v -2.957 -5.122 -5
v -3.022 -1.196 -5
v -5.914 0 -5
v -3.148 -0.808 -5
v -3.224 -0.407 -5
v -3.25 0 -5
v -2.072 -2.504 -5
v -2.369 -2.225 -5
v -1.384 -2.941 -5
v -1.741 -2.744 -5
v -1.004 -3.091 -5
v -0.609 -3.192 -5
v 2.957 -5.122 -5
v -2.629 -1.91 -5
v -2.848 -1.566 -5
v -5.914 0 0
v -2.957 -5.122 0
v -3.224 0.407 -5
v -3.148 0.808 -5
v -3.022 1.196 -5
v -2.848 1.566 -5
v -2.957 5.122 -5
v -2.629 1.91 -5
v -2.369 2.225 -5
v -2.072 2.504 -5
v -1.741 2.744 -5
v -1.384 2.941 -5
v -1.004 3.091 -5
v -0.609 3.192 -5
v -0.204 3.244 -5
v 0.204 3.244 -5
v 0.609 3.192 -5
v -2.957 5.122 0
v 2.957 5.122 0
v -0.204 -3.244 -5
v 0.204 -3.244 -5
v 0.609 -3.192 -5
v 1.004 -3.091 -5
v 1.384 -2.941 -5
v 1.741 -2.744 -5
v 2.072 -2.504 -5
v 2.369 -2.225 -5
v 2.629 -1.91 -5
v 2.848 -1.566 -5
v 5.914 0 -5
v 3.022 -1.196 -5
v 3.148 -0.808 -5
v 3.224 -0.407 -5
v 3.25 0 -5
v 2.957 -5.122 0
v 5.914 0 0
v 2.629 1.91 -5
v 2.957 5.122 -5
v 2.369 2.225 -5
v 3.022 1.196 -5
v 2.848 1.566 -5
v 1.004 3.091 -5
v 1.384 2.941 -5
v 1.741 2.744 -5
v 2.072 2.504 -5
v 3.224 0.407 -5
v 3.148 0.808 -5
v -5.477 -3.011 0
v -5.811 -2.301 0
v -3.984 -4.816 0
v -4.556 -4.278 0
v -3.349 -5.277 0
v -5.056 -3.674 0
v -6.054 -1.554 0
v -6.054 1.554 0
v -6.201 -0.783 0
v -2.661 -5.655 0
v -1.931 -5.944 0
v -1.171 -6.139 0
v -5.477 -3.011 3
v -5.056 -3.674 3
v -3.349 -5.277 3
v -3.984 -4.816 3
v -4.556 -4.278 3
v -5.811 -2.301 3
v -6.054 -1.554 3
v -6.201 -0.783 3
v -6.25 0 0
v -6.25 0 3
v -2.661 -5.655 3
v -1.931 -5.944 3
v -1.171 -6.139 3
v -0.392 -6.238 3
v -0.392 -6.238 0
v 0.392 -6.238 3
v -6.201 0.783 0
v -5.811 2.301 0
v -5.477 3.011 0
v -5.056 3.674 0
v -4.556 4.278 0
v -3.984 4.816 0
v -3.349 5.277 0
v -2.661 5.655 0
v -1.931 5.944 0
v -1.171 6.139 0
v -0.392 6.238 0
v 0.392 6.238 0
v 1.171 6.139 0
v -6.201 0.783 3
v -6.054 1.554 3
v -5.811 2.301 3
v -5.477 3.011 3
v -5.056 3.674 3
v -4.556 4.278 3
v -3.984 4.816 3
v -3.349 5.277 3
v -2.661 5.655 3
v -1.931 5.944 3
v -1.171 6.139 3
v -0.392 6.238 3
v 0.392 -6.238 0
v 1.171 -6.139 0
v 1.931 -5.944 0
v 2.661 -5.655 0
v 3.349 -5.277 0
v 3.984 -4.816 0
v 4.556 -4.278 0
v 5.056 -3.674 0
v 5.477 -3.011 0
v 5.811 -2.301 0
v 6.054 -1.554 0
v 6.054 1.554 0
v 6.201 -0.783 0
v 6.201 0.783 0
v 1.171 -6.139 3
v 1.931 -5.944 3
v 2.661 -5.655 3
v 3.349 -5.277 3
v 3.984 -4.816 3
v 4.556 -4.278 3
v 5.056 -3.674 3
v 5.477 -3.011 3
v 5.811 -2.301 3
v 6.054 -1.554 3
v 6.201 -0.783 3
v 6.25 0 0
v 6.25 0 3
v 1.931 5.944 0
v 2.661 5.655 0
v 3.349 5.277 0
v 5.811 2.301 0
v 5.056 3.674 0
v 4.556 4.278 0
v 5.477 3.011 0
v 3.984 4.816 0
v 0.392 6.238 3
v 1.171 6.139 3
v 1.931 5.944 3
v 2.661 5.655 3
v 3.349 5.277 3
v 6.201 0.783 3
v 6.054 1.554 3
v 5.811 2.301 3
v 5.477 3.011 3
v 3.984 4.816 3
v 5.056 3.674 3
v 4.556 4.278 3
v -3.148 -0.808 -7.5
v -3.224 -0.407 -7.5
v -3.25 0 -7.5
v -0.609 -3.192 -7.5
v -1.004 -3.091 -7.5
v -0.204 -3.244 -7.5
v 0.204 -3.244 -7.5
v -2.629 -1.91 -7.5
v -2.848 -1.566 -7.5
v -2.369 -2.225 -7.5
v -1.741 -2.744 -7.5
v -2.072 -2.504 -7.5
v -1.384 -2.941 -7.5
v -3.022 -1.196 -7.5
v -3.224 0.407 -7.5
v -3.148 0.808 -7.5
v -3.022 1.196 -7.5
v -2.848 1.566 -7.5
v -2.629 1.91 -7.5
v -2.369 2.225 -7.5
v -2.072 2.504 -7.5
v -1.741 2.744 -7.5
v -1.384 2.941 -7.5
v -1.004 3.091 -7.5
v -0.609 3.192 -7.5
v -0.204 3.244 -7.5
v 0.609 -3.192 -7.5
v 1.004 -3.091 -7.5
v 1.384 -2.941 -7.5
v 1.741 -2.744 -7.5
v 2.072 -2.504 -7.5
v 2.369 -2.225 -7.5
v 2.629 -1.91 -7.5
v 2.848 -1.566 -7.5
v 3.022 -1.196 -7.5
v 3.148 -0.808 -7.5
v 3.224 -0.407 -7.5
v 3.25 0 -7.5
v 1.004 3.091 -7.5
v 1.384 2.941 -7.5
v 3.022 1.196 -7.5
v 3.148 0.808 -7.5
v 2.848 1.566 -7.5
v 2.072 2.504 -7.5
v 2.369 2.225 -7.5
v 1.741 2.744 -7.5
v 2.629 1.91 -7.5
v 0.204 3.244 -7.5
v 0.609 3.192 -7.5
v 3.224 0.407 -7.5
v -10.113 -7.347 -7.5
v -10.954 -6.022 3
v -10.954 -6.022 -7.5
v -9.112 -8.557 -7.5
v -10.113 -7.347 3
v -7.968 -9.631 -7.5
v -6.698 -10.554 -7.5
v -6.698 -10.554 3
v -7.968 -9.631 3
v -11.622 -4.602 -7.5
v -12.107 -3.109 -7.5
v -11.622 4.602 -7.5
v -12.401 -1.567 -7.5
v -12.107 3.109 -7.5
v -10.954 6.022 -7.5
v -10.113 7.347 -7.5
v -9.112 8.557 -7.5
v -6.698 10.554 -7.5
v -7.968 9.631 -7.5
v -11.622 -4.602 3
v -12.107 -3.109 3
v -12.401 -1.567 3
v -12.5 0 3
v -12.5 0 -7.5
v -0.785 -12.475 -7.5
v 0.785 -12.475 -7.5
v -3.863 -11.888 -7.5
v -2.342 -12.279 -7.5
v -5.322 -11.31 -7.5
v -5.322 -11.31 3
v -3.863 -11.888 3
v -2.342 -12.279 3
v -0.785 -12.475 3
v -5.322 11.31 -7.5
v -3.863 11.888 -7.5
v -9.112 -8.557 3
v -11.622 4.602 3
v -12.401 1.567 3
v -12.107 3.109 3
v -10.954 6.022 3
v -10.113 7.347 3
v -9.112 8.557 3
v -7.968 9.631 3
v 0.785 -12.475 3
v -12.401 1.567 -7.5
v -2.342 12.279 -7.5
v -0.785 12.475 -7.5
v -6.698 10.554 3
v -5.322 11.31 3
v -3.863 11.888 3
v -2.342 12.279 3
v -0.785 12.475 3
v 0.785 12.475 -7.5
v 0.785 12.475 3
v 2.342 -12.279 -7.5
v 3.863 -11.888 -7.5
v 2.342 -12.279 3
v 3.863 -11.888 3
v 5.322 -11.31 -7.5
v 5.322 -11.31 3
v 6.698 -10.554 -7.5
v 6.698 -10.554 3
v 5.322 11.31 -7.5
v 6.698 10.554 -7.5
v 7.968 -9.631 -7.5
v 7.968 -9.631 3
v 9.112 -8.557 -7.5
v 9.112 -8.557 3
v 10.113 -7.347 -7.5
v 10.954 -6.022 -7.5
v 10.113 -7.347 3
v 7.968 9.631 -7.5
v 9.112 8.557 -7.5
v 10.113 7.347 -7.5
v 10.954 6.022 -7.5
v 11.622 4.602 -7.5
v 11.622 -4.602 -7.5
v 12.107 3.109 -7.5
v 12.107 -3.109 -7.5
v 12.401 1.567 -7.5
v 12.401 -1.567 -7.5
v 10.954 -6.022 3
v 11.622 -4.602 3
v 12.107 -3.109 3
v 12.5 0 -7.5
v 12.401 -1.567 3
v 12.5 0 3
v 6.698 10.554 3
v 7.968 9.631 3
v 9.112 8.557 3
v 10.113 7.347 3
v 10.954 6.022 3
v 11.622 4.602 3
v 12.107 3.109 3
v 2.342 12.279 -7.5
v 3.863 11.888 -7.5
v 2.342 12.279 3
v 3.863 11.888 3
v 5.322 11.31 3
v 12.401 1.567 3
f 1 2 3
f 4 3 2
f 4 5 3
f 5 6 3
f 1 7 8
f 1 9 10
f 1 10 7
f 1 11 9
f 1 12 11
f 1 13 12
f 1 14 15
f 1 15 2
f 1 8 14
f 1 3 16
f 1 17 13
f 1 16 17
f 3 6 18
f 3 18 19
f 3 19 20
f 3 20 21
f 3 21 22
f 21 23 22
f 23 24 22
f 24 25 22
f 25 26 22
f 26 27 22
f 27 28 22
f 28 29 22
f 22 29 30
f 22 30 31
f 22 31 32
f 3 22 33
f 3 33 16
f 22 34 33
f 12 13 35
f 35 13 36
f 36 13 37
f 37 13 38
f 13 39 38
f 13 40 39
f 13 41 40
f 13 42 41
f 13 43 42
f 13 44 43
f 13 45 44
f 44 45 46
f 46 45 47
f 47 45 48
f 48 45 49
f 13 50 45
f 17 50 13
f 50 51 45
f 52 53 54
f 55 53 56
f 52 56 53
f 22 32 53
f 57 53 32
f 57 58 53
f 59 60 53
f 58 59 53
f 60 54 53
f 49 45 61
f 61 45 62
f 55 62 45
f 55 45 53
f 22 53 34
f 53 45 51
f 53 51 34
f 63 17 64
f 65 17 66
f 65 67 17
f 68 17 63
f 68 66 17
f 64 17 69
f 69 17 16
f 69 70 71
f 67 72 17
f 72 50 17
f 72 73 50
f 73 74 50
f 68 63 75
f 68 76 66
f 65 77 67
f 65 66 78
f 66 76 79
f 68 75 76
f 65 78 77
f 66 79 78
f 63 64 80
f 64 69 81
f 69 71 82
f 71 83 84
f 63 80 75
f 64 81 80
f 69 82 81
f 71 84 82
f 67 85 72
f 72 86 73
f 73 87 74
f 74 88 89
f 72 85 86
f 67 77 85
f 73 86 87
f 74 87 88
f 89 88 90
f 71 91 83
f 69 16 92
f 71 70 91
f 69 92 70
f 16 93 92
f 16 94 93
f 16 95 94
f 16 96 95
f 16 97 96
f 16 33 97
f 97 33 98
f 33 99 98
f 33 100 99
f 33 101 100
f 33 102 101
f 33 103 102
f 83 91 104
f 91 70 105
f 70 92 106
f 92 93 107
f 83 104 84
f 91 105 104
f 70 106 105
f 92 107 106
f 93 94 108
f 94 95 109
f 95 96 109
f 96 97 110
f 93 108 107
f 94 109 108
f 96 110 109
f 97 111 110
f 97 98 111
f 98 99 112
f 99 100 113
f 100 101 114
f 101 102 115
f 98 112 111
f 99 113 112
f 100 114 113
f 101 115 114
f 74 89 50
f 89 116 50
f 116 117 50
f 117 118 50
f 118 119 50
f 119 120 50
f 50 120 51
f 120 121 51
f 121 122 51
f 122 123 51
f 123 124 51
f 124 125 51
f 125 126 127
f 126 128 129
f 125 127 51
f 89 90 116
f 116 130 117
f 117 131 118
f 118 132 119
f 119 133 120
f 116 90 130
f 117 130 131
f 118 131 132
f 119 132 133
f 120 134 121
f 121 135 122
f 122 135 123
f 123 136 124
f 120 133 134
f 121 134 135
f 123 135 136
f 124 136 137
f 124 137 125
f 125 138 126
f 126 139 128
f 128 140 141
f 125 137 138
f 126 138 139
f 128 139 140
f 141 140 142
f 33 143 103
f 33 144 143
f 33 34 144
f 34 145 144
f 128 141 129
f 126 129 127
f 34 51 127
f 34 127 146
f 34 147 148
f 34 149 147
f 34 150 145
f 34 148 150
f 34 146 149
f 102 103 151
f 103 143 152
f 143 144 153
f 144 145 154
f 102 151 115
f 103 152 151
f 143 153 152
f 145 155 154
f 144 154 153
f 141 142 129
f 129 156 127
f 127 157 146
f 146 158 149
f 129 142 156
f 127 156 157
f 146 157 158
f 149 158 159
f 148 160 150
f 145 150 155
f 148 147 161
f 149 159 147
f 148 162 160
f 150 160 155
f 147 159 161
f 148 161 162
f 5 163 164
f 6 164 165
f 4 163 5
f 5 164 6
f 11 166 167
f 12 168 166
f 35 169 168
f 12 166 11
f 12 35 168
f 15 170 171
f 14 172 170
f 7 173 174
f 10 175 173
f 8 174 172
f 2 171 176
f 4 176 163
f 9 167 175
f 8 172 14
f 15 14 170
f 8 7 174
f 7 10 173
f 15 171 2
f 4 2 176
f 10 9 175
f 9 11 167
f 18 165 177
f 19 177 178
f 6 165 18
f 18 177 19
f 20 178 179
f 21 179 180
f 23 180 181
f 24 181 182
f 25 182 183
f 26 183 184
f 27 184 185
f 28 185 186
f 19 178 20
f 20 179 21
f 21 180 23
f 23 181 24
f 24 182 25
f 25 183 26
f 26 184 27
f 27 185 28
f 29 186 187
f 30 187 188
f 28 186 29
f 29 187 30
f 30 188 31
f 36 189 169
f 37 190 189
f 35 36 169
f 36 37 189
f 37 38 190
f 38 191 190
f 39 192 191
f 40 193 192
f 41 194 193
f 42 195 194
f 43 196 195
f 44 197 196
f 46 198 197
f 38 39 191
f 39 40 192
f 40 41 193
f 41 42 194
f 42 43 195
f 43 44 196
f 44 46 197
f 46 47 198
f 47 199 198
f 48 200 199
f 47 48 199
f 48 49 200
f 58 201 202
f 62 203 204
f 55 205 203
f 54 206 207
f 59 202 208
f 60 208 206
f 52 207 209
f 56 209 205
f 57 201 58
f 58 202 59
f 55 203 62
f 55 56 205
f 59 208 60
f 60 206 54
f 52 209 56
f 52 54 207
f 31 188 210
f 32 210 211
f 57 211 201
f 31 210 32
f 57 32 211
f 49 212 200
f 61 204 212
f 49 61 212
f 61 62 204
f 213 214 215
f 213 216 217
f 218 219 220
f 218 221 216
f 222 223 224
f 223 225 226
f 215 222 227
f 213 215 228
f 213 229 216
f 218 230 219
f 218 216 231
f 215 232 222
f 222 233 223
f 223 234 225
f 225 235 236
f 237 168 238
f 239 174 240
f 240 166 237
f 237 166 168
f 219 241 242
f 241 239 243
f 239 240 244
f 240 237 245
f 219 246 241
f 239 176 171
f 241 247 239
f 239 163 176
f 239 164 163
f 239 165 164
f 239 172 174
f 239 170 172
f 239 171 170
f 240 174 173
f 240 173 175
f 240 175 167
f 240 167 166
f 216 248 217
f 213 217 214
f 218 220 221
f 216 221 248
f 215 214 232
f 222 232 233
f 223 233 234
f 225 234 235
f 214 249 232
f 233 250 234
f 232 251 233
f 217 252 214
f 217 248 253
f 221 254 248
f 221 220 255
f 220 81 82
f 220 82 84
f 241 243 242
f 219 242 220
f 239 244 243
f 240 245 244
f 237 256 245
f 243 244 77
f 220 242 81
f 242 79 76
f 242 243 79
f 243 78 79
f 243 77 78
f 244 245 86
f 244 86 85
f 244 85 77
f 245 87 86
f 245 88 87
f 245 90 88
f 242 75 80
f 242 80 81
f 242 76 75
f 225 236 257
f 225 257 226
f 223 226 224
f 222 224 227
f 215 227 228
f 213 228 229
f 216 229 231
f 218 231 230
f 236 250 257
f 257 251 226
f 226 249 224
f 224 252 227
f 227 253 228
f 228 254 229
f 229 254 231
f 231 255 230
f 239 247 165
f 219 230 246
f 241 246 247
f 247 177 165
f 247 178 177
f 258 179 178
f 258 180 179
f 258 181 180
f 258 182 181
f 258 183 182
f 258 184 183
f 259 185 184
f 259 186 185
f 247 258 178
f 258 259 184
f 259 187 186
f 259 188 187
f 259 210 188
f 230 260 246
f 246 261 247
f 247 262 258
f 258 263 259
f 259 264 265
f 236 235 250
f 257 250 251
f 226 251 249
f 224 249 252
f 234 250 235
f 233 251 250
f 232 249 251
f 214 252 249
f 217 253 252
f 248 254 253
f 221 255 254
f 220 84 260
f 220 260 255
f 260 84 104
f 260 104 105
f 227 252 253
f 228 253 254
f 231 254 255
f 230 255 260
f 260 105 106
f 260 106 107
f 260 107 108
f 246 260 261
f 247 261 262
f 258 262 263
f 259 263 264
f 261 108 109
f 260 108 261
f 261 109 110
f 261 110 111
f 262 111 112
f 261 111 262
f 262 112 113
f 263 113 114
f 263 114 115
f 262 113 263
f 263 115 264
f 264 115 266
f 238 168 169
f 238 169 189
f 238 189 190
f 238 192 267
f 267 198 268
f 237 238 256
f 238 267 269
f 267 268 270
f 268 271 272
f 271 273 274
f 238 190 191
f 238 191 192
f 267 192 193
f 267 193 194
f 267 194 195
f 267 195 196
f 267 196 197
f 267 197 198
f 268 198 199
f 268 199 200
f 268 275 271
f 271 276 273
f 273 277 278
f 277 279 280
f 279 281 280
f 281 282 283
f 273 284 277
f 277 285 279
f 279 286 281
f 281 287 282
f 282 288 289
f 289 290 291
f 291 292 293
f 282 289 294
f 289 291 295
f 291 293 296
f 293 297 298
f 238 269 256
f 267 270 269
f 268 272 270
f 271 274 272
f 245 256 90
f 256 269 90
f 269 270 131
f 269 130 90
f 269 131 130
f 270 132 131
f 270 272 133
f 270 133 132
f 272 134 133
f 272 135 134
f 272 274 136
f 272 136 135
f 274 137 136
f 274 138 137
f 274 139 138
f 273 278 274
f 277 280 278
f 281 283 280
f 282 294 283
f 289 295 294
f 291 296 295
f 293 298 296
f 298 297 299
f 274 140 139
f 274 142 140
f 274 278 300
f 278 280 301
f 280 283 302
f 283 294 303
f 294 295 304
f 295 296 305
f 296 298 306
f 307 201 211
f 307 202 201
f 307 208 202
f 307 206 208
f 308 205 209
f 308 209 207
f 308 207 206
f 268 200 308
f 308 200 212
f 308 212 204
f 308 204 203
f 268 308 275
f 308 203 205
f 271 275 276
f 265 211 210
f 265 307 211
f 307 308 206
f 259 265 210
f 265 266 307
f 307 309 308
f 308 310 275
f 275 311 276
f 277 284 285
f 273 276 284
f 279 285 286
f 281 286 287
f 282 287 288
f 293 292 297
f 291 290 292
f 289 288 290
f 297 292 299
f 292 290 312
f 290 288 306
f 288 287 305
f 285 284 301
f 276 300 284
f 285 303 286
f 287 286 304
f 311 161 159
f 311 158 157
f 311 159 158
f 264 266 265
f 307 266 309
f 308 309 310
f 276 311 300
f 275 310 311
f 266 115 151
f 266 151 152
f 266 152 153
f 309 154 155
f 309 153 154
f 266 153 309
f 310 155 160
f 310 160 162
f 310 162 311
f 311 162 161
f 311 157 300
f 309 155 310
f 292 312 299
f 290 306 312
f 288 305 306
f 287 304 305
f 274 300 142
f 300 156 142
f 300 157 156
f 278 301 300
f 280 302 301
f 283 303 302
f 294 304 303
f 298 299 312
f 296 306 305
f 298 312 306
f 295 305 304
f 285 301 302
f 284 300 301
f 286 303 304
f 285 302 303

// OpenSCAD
$fn = 50;

difference() {
	union() {
		translate(v = [0, 0, -7.5]) {
			cylinder(h = 10.5, r = 12.5);
		}
	}
	union() {
		translate(v = [0, 0, 0]) {
			rotate(a = [0, 0, 0]) {
				difference() {
					union() {
						translate(v = [0, 0, -5]) {
							linear_extrude(height = 5) {
								polygon(points = [[5.914249999999999, 0.0], [2.957125, 5.1218907443321156], [-2.9571249999999982, 5.1218907443321156], [-5.914249999999999, 7.242867331857232e-16], [-2.9571250000000022, -5.121890744332115], [2.9571249999999956, -5.121890744332118]]);
							}
						}
					}
					union();
				}
			}
		}
		#cylinder(h = 3, r = 6.25);
		#translate(v = [0, 0, -100.0]) {
			cylinder(h = 200, r = 3.25);
		}
	}
}
